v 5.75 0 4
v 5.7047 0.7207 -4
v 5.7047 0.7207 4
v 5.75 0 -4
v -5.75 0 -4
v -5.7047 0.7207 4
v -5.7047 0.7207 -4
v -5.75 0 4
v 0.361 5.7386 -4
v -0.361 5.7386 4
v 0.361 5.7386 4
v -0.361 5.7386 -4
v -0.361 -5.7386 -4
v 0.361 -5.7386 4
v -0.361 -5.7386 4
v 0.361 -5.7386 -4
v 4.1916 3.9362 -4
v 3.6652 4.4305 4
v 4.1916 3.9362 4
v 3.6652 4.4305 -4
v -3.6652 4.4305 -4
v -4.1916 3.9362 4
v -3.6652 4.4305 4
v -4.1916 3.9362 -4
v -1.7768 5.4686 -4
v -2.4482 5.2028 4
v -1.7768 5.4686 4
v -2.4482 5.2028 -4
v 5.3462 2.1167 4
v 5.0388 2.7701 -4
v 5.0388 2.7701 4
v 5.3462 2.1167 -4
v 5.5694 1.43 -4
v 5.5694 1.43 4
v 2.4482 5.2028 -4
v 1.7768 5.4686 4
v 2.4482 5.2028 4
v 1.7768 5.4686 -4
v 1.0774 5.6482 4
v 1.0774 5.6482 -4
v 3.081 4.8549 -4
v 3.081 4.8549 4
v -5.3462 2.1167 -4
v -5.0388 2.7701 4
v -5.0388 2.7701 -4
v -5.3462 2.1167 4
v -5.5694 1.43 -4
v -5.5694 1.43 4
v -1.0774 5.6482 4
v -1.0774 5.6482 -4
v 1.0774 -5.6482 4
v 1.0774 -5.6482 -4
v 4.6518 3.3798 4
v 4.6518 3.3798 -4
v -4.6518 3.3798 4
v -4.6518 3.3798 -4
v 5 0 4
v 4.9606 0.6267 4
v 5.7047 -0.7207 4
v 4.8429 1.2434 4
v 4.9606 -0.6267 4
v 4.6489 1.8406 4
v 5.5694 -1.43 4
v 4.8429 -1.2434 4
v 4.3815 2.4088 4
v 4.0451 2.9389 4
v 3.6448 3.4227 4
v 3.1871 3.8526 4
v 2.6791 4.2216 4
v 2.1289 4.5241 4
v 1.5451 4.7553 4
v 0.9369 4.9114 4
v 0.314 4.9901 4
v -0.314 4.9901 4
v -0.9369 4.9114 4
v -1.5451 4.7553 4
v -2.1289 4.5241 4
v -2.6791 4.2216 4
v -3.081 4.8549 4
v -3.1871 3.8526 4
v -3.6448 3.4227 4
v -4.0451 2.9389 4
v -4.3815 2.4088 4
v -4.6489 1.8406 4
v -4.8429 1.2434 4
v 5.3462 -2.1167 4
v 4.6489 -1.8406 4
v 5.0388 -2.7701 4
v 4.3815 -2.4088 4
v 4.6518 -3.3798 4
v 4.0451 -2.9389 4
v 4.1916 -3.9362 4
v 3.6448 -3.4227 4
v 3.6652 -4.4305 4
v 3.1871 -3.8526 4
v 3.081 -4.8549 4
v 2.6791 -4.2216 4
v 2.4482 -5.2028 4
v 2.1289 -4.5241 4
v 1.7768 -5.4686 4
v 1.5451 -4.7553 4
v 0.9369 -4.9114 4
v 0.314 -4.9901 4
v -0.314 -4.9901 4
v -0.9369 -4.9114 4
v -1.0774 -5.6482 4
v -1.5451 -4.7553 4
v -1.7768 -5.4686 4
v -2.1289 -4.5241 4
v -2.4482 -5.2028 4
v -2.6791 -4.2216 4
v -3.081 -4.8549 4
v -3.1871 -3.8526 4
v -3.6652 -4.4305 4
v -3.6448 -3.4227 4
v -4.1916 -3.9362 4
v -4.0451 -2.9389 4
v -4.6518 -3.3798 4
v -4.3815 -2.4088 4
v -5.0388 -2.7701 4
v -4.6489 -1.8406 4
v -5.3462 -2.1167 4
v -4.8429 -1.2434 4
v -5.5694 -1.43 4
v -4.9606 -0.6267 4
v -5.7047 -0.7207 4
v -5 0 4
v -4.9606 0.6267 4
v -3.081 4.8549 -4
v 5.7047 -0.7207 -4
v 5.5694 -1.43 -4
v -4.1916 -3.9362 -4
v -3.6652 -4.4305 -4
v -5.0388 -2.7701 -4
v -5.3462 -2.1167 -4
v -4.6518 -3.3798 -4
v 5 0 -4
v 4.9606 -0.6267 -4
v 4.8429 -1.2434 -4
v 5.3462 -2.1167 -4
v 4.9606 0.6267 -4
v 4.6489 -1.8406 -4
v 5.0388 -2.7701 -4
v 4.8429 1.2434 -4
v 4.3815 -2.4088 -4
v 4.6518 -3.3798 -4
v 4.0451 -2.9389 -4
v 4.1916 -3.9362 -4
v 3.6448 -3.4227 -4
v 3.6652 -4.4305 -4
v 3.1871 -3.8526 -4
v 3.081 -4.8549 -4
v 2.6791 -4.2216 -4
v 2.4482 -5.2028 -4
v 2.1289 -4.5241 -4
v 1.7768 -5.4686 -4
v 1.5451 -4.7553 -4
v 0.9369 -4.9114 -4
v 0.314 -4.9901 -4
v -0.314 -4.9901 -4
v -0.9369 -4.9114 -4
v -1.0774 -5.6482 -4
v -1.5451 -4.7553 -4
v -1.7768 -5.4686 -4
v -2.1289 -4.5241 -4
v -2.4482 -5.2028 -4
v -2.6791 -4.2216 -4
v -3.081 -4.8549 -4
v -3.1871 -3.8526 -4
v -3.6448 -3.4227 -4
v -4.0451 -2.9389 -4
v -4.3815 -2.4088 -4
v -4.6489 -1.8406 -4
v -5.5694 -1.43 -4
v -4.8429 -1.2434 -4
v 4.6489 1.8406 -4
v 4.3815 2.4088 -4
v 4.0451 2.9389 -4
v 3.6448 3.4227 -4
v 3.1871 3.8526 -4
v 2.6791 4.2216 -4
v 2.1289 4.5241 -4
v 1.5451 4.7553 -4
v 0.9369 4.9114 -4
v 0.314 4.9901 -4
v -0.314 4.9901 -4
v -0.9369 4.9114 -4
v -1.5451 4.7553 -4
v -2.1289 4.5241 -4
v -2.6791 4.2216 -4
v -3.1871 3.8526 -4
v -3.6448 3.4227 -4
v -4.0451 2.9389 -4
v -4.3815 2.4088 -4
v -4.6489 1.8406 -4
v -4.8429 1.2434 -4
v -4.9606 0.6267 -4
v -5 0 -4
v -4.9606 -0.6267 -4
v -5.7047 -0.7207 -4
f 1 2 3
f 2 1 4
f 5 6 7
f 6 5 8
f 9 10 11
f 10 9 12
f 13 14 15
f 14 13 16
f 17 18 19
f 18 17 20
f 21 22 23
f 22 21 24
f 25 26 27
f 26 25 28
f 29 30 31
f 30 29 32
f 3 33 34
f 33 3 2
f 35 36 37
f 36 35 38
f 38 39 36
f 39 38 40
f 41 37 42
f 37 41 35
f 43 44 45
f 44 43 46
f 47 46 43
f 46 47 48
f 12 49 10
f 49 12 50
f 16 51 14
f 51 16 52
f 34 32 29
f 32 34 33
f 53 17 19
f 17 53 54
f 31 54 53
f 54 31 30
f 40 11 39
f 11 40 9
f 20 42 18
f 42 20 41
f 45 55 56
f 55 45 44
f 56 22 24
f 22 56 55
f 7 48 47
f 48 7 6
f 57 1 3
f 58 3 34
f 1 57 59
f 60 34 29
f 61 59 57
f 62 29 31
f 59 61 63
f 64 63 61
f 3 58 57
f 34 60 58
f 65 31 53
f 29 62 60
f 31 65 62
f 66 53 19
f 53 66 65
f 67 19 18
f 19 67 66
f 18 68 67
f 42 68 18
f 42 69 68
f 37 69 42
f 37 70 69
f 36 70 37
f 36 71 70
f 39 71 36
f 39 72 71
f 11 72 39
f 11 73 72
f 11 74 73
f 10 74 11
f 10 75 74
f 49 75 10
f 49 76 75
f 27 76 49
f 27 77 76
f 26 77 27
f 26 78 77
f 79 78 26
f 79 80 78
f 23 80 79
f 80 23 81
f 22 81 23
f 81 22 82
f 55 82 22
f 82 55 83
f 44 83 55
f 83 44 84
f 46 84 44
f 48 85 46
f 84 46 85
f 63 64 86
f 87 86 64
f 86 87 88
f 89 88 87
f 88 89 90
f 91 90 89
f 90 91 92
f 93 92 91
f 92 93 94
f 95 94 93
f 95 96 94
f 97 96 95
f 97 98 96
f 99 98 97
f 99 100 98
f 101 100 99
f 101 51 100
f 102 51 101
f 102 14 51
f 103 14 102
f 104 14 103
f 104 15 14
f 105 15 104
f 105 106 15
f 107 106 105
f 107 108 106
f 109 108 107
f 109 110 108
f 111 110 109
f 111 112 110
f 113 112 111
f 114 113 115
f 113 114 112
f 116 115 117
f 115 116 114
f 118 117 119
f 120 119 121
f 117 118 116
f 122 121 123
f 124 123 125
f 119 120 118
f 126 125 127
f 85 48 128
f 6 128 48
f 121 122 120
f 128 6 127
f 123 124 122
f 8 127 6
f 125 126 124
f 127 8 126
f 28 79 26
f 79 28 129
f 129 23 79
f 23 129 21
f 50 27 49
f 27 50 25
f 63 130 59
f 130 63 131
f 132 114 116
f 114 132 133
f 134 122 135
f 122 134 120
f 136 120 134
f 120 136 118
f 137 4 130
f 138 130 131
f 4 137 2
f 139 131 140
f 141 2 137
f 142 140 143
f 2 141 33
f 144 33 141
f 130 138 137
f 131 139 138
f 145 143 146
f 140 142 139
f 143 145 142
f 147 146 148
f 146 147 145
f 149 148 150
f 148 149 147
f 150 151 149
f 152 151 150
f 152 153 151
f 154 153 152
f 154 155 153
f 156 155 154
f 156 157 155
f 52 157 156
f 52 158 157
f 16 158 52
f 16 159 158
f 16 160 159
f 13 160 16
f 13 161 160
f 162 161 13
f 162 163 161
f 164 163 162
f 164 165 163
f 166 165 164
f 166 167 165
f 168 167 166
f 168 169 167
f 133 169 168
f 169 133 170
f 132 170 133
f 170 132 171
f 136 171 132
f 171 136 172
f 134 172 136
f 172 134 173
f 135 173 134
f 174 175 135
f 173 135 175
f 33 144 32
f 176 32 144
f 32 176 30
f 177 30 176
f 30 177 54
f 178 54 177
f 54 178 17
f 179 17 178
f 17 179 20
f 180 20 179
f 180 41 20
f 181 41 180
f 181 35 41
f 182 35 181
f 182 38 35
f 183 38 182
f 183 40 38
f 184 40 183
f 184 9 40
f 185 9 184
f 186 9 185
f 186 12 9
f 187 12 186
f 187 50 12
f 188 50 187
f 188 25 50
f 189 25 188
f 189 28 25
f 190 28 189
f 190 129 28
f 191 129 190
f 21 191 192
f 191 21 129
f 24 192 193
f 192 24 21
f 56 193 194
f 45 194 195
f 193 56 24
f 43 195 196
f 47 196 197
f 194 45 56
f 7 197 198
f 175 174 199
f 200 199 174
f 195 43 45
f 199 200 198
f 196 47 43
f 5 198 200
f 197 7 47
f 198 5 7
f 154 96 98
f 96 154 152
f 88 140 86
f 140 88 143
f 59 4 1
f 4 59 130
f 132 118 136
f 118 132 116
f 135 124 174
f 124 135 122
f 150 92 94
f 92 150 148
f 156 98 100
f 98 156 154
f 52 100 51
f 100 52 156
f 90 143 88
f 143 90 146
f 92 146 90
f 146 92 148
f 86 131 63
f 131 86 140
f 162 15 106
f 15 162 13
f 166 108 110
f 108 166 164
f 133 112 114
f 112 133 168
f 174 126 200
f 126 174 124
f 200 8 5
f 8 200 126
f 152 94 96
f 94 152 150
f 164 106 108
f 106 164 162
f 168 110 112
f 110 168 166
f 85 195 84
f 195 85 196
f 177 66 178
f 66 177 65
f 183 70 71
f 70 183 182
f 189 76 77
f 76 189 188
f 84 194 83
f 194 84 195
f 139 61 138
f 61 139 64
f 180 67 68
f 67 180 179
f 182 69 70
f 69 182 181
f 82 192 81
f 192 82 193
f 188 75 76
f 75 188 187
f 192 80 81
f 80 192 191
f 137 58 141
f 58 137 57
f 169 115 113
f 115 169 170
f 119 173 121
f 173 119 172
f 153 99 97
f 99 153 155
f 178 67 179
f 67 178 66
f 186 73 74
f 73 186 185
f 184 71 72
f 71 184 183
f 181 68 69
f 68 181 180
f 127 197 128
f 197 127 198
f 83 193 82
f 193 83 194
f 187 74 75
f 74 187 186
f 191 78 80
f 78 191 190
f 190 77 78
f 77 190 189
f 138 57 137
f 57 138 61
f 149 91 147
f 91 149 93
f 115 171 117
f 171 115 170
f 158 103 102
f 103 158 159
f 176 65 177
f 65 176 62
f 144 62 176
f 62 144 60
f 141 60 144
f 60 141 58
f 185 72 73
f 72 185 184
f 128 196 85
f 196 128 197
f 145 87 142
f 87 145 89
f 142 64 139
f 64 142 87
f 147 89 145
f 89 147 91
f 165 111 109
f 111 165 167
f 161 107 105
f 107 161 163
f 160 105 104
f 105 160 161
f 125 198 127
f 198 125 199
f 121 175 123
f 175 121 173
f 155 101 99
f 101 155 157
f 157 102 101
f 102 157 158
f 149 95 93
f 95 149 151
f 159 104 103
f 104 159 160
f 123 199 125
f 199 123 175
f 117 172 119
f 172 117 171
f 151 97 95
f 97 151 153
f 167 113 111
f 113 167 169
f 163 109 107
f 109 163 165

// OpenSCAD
$fn = 50;


difference() {
	union() {
		translate(v = [0, 0, -4.0000000000]) {
			cylinder(h = 8, r = 5.7500000000);
		}
	}
	union() {
		translate(v = [0, 0, -100.0000000000]) {
			cylinder(h = 200, r = 5.0000000000);
		}
	}
}
